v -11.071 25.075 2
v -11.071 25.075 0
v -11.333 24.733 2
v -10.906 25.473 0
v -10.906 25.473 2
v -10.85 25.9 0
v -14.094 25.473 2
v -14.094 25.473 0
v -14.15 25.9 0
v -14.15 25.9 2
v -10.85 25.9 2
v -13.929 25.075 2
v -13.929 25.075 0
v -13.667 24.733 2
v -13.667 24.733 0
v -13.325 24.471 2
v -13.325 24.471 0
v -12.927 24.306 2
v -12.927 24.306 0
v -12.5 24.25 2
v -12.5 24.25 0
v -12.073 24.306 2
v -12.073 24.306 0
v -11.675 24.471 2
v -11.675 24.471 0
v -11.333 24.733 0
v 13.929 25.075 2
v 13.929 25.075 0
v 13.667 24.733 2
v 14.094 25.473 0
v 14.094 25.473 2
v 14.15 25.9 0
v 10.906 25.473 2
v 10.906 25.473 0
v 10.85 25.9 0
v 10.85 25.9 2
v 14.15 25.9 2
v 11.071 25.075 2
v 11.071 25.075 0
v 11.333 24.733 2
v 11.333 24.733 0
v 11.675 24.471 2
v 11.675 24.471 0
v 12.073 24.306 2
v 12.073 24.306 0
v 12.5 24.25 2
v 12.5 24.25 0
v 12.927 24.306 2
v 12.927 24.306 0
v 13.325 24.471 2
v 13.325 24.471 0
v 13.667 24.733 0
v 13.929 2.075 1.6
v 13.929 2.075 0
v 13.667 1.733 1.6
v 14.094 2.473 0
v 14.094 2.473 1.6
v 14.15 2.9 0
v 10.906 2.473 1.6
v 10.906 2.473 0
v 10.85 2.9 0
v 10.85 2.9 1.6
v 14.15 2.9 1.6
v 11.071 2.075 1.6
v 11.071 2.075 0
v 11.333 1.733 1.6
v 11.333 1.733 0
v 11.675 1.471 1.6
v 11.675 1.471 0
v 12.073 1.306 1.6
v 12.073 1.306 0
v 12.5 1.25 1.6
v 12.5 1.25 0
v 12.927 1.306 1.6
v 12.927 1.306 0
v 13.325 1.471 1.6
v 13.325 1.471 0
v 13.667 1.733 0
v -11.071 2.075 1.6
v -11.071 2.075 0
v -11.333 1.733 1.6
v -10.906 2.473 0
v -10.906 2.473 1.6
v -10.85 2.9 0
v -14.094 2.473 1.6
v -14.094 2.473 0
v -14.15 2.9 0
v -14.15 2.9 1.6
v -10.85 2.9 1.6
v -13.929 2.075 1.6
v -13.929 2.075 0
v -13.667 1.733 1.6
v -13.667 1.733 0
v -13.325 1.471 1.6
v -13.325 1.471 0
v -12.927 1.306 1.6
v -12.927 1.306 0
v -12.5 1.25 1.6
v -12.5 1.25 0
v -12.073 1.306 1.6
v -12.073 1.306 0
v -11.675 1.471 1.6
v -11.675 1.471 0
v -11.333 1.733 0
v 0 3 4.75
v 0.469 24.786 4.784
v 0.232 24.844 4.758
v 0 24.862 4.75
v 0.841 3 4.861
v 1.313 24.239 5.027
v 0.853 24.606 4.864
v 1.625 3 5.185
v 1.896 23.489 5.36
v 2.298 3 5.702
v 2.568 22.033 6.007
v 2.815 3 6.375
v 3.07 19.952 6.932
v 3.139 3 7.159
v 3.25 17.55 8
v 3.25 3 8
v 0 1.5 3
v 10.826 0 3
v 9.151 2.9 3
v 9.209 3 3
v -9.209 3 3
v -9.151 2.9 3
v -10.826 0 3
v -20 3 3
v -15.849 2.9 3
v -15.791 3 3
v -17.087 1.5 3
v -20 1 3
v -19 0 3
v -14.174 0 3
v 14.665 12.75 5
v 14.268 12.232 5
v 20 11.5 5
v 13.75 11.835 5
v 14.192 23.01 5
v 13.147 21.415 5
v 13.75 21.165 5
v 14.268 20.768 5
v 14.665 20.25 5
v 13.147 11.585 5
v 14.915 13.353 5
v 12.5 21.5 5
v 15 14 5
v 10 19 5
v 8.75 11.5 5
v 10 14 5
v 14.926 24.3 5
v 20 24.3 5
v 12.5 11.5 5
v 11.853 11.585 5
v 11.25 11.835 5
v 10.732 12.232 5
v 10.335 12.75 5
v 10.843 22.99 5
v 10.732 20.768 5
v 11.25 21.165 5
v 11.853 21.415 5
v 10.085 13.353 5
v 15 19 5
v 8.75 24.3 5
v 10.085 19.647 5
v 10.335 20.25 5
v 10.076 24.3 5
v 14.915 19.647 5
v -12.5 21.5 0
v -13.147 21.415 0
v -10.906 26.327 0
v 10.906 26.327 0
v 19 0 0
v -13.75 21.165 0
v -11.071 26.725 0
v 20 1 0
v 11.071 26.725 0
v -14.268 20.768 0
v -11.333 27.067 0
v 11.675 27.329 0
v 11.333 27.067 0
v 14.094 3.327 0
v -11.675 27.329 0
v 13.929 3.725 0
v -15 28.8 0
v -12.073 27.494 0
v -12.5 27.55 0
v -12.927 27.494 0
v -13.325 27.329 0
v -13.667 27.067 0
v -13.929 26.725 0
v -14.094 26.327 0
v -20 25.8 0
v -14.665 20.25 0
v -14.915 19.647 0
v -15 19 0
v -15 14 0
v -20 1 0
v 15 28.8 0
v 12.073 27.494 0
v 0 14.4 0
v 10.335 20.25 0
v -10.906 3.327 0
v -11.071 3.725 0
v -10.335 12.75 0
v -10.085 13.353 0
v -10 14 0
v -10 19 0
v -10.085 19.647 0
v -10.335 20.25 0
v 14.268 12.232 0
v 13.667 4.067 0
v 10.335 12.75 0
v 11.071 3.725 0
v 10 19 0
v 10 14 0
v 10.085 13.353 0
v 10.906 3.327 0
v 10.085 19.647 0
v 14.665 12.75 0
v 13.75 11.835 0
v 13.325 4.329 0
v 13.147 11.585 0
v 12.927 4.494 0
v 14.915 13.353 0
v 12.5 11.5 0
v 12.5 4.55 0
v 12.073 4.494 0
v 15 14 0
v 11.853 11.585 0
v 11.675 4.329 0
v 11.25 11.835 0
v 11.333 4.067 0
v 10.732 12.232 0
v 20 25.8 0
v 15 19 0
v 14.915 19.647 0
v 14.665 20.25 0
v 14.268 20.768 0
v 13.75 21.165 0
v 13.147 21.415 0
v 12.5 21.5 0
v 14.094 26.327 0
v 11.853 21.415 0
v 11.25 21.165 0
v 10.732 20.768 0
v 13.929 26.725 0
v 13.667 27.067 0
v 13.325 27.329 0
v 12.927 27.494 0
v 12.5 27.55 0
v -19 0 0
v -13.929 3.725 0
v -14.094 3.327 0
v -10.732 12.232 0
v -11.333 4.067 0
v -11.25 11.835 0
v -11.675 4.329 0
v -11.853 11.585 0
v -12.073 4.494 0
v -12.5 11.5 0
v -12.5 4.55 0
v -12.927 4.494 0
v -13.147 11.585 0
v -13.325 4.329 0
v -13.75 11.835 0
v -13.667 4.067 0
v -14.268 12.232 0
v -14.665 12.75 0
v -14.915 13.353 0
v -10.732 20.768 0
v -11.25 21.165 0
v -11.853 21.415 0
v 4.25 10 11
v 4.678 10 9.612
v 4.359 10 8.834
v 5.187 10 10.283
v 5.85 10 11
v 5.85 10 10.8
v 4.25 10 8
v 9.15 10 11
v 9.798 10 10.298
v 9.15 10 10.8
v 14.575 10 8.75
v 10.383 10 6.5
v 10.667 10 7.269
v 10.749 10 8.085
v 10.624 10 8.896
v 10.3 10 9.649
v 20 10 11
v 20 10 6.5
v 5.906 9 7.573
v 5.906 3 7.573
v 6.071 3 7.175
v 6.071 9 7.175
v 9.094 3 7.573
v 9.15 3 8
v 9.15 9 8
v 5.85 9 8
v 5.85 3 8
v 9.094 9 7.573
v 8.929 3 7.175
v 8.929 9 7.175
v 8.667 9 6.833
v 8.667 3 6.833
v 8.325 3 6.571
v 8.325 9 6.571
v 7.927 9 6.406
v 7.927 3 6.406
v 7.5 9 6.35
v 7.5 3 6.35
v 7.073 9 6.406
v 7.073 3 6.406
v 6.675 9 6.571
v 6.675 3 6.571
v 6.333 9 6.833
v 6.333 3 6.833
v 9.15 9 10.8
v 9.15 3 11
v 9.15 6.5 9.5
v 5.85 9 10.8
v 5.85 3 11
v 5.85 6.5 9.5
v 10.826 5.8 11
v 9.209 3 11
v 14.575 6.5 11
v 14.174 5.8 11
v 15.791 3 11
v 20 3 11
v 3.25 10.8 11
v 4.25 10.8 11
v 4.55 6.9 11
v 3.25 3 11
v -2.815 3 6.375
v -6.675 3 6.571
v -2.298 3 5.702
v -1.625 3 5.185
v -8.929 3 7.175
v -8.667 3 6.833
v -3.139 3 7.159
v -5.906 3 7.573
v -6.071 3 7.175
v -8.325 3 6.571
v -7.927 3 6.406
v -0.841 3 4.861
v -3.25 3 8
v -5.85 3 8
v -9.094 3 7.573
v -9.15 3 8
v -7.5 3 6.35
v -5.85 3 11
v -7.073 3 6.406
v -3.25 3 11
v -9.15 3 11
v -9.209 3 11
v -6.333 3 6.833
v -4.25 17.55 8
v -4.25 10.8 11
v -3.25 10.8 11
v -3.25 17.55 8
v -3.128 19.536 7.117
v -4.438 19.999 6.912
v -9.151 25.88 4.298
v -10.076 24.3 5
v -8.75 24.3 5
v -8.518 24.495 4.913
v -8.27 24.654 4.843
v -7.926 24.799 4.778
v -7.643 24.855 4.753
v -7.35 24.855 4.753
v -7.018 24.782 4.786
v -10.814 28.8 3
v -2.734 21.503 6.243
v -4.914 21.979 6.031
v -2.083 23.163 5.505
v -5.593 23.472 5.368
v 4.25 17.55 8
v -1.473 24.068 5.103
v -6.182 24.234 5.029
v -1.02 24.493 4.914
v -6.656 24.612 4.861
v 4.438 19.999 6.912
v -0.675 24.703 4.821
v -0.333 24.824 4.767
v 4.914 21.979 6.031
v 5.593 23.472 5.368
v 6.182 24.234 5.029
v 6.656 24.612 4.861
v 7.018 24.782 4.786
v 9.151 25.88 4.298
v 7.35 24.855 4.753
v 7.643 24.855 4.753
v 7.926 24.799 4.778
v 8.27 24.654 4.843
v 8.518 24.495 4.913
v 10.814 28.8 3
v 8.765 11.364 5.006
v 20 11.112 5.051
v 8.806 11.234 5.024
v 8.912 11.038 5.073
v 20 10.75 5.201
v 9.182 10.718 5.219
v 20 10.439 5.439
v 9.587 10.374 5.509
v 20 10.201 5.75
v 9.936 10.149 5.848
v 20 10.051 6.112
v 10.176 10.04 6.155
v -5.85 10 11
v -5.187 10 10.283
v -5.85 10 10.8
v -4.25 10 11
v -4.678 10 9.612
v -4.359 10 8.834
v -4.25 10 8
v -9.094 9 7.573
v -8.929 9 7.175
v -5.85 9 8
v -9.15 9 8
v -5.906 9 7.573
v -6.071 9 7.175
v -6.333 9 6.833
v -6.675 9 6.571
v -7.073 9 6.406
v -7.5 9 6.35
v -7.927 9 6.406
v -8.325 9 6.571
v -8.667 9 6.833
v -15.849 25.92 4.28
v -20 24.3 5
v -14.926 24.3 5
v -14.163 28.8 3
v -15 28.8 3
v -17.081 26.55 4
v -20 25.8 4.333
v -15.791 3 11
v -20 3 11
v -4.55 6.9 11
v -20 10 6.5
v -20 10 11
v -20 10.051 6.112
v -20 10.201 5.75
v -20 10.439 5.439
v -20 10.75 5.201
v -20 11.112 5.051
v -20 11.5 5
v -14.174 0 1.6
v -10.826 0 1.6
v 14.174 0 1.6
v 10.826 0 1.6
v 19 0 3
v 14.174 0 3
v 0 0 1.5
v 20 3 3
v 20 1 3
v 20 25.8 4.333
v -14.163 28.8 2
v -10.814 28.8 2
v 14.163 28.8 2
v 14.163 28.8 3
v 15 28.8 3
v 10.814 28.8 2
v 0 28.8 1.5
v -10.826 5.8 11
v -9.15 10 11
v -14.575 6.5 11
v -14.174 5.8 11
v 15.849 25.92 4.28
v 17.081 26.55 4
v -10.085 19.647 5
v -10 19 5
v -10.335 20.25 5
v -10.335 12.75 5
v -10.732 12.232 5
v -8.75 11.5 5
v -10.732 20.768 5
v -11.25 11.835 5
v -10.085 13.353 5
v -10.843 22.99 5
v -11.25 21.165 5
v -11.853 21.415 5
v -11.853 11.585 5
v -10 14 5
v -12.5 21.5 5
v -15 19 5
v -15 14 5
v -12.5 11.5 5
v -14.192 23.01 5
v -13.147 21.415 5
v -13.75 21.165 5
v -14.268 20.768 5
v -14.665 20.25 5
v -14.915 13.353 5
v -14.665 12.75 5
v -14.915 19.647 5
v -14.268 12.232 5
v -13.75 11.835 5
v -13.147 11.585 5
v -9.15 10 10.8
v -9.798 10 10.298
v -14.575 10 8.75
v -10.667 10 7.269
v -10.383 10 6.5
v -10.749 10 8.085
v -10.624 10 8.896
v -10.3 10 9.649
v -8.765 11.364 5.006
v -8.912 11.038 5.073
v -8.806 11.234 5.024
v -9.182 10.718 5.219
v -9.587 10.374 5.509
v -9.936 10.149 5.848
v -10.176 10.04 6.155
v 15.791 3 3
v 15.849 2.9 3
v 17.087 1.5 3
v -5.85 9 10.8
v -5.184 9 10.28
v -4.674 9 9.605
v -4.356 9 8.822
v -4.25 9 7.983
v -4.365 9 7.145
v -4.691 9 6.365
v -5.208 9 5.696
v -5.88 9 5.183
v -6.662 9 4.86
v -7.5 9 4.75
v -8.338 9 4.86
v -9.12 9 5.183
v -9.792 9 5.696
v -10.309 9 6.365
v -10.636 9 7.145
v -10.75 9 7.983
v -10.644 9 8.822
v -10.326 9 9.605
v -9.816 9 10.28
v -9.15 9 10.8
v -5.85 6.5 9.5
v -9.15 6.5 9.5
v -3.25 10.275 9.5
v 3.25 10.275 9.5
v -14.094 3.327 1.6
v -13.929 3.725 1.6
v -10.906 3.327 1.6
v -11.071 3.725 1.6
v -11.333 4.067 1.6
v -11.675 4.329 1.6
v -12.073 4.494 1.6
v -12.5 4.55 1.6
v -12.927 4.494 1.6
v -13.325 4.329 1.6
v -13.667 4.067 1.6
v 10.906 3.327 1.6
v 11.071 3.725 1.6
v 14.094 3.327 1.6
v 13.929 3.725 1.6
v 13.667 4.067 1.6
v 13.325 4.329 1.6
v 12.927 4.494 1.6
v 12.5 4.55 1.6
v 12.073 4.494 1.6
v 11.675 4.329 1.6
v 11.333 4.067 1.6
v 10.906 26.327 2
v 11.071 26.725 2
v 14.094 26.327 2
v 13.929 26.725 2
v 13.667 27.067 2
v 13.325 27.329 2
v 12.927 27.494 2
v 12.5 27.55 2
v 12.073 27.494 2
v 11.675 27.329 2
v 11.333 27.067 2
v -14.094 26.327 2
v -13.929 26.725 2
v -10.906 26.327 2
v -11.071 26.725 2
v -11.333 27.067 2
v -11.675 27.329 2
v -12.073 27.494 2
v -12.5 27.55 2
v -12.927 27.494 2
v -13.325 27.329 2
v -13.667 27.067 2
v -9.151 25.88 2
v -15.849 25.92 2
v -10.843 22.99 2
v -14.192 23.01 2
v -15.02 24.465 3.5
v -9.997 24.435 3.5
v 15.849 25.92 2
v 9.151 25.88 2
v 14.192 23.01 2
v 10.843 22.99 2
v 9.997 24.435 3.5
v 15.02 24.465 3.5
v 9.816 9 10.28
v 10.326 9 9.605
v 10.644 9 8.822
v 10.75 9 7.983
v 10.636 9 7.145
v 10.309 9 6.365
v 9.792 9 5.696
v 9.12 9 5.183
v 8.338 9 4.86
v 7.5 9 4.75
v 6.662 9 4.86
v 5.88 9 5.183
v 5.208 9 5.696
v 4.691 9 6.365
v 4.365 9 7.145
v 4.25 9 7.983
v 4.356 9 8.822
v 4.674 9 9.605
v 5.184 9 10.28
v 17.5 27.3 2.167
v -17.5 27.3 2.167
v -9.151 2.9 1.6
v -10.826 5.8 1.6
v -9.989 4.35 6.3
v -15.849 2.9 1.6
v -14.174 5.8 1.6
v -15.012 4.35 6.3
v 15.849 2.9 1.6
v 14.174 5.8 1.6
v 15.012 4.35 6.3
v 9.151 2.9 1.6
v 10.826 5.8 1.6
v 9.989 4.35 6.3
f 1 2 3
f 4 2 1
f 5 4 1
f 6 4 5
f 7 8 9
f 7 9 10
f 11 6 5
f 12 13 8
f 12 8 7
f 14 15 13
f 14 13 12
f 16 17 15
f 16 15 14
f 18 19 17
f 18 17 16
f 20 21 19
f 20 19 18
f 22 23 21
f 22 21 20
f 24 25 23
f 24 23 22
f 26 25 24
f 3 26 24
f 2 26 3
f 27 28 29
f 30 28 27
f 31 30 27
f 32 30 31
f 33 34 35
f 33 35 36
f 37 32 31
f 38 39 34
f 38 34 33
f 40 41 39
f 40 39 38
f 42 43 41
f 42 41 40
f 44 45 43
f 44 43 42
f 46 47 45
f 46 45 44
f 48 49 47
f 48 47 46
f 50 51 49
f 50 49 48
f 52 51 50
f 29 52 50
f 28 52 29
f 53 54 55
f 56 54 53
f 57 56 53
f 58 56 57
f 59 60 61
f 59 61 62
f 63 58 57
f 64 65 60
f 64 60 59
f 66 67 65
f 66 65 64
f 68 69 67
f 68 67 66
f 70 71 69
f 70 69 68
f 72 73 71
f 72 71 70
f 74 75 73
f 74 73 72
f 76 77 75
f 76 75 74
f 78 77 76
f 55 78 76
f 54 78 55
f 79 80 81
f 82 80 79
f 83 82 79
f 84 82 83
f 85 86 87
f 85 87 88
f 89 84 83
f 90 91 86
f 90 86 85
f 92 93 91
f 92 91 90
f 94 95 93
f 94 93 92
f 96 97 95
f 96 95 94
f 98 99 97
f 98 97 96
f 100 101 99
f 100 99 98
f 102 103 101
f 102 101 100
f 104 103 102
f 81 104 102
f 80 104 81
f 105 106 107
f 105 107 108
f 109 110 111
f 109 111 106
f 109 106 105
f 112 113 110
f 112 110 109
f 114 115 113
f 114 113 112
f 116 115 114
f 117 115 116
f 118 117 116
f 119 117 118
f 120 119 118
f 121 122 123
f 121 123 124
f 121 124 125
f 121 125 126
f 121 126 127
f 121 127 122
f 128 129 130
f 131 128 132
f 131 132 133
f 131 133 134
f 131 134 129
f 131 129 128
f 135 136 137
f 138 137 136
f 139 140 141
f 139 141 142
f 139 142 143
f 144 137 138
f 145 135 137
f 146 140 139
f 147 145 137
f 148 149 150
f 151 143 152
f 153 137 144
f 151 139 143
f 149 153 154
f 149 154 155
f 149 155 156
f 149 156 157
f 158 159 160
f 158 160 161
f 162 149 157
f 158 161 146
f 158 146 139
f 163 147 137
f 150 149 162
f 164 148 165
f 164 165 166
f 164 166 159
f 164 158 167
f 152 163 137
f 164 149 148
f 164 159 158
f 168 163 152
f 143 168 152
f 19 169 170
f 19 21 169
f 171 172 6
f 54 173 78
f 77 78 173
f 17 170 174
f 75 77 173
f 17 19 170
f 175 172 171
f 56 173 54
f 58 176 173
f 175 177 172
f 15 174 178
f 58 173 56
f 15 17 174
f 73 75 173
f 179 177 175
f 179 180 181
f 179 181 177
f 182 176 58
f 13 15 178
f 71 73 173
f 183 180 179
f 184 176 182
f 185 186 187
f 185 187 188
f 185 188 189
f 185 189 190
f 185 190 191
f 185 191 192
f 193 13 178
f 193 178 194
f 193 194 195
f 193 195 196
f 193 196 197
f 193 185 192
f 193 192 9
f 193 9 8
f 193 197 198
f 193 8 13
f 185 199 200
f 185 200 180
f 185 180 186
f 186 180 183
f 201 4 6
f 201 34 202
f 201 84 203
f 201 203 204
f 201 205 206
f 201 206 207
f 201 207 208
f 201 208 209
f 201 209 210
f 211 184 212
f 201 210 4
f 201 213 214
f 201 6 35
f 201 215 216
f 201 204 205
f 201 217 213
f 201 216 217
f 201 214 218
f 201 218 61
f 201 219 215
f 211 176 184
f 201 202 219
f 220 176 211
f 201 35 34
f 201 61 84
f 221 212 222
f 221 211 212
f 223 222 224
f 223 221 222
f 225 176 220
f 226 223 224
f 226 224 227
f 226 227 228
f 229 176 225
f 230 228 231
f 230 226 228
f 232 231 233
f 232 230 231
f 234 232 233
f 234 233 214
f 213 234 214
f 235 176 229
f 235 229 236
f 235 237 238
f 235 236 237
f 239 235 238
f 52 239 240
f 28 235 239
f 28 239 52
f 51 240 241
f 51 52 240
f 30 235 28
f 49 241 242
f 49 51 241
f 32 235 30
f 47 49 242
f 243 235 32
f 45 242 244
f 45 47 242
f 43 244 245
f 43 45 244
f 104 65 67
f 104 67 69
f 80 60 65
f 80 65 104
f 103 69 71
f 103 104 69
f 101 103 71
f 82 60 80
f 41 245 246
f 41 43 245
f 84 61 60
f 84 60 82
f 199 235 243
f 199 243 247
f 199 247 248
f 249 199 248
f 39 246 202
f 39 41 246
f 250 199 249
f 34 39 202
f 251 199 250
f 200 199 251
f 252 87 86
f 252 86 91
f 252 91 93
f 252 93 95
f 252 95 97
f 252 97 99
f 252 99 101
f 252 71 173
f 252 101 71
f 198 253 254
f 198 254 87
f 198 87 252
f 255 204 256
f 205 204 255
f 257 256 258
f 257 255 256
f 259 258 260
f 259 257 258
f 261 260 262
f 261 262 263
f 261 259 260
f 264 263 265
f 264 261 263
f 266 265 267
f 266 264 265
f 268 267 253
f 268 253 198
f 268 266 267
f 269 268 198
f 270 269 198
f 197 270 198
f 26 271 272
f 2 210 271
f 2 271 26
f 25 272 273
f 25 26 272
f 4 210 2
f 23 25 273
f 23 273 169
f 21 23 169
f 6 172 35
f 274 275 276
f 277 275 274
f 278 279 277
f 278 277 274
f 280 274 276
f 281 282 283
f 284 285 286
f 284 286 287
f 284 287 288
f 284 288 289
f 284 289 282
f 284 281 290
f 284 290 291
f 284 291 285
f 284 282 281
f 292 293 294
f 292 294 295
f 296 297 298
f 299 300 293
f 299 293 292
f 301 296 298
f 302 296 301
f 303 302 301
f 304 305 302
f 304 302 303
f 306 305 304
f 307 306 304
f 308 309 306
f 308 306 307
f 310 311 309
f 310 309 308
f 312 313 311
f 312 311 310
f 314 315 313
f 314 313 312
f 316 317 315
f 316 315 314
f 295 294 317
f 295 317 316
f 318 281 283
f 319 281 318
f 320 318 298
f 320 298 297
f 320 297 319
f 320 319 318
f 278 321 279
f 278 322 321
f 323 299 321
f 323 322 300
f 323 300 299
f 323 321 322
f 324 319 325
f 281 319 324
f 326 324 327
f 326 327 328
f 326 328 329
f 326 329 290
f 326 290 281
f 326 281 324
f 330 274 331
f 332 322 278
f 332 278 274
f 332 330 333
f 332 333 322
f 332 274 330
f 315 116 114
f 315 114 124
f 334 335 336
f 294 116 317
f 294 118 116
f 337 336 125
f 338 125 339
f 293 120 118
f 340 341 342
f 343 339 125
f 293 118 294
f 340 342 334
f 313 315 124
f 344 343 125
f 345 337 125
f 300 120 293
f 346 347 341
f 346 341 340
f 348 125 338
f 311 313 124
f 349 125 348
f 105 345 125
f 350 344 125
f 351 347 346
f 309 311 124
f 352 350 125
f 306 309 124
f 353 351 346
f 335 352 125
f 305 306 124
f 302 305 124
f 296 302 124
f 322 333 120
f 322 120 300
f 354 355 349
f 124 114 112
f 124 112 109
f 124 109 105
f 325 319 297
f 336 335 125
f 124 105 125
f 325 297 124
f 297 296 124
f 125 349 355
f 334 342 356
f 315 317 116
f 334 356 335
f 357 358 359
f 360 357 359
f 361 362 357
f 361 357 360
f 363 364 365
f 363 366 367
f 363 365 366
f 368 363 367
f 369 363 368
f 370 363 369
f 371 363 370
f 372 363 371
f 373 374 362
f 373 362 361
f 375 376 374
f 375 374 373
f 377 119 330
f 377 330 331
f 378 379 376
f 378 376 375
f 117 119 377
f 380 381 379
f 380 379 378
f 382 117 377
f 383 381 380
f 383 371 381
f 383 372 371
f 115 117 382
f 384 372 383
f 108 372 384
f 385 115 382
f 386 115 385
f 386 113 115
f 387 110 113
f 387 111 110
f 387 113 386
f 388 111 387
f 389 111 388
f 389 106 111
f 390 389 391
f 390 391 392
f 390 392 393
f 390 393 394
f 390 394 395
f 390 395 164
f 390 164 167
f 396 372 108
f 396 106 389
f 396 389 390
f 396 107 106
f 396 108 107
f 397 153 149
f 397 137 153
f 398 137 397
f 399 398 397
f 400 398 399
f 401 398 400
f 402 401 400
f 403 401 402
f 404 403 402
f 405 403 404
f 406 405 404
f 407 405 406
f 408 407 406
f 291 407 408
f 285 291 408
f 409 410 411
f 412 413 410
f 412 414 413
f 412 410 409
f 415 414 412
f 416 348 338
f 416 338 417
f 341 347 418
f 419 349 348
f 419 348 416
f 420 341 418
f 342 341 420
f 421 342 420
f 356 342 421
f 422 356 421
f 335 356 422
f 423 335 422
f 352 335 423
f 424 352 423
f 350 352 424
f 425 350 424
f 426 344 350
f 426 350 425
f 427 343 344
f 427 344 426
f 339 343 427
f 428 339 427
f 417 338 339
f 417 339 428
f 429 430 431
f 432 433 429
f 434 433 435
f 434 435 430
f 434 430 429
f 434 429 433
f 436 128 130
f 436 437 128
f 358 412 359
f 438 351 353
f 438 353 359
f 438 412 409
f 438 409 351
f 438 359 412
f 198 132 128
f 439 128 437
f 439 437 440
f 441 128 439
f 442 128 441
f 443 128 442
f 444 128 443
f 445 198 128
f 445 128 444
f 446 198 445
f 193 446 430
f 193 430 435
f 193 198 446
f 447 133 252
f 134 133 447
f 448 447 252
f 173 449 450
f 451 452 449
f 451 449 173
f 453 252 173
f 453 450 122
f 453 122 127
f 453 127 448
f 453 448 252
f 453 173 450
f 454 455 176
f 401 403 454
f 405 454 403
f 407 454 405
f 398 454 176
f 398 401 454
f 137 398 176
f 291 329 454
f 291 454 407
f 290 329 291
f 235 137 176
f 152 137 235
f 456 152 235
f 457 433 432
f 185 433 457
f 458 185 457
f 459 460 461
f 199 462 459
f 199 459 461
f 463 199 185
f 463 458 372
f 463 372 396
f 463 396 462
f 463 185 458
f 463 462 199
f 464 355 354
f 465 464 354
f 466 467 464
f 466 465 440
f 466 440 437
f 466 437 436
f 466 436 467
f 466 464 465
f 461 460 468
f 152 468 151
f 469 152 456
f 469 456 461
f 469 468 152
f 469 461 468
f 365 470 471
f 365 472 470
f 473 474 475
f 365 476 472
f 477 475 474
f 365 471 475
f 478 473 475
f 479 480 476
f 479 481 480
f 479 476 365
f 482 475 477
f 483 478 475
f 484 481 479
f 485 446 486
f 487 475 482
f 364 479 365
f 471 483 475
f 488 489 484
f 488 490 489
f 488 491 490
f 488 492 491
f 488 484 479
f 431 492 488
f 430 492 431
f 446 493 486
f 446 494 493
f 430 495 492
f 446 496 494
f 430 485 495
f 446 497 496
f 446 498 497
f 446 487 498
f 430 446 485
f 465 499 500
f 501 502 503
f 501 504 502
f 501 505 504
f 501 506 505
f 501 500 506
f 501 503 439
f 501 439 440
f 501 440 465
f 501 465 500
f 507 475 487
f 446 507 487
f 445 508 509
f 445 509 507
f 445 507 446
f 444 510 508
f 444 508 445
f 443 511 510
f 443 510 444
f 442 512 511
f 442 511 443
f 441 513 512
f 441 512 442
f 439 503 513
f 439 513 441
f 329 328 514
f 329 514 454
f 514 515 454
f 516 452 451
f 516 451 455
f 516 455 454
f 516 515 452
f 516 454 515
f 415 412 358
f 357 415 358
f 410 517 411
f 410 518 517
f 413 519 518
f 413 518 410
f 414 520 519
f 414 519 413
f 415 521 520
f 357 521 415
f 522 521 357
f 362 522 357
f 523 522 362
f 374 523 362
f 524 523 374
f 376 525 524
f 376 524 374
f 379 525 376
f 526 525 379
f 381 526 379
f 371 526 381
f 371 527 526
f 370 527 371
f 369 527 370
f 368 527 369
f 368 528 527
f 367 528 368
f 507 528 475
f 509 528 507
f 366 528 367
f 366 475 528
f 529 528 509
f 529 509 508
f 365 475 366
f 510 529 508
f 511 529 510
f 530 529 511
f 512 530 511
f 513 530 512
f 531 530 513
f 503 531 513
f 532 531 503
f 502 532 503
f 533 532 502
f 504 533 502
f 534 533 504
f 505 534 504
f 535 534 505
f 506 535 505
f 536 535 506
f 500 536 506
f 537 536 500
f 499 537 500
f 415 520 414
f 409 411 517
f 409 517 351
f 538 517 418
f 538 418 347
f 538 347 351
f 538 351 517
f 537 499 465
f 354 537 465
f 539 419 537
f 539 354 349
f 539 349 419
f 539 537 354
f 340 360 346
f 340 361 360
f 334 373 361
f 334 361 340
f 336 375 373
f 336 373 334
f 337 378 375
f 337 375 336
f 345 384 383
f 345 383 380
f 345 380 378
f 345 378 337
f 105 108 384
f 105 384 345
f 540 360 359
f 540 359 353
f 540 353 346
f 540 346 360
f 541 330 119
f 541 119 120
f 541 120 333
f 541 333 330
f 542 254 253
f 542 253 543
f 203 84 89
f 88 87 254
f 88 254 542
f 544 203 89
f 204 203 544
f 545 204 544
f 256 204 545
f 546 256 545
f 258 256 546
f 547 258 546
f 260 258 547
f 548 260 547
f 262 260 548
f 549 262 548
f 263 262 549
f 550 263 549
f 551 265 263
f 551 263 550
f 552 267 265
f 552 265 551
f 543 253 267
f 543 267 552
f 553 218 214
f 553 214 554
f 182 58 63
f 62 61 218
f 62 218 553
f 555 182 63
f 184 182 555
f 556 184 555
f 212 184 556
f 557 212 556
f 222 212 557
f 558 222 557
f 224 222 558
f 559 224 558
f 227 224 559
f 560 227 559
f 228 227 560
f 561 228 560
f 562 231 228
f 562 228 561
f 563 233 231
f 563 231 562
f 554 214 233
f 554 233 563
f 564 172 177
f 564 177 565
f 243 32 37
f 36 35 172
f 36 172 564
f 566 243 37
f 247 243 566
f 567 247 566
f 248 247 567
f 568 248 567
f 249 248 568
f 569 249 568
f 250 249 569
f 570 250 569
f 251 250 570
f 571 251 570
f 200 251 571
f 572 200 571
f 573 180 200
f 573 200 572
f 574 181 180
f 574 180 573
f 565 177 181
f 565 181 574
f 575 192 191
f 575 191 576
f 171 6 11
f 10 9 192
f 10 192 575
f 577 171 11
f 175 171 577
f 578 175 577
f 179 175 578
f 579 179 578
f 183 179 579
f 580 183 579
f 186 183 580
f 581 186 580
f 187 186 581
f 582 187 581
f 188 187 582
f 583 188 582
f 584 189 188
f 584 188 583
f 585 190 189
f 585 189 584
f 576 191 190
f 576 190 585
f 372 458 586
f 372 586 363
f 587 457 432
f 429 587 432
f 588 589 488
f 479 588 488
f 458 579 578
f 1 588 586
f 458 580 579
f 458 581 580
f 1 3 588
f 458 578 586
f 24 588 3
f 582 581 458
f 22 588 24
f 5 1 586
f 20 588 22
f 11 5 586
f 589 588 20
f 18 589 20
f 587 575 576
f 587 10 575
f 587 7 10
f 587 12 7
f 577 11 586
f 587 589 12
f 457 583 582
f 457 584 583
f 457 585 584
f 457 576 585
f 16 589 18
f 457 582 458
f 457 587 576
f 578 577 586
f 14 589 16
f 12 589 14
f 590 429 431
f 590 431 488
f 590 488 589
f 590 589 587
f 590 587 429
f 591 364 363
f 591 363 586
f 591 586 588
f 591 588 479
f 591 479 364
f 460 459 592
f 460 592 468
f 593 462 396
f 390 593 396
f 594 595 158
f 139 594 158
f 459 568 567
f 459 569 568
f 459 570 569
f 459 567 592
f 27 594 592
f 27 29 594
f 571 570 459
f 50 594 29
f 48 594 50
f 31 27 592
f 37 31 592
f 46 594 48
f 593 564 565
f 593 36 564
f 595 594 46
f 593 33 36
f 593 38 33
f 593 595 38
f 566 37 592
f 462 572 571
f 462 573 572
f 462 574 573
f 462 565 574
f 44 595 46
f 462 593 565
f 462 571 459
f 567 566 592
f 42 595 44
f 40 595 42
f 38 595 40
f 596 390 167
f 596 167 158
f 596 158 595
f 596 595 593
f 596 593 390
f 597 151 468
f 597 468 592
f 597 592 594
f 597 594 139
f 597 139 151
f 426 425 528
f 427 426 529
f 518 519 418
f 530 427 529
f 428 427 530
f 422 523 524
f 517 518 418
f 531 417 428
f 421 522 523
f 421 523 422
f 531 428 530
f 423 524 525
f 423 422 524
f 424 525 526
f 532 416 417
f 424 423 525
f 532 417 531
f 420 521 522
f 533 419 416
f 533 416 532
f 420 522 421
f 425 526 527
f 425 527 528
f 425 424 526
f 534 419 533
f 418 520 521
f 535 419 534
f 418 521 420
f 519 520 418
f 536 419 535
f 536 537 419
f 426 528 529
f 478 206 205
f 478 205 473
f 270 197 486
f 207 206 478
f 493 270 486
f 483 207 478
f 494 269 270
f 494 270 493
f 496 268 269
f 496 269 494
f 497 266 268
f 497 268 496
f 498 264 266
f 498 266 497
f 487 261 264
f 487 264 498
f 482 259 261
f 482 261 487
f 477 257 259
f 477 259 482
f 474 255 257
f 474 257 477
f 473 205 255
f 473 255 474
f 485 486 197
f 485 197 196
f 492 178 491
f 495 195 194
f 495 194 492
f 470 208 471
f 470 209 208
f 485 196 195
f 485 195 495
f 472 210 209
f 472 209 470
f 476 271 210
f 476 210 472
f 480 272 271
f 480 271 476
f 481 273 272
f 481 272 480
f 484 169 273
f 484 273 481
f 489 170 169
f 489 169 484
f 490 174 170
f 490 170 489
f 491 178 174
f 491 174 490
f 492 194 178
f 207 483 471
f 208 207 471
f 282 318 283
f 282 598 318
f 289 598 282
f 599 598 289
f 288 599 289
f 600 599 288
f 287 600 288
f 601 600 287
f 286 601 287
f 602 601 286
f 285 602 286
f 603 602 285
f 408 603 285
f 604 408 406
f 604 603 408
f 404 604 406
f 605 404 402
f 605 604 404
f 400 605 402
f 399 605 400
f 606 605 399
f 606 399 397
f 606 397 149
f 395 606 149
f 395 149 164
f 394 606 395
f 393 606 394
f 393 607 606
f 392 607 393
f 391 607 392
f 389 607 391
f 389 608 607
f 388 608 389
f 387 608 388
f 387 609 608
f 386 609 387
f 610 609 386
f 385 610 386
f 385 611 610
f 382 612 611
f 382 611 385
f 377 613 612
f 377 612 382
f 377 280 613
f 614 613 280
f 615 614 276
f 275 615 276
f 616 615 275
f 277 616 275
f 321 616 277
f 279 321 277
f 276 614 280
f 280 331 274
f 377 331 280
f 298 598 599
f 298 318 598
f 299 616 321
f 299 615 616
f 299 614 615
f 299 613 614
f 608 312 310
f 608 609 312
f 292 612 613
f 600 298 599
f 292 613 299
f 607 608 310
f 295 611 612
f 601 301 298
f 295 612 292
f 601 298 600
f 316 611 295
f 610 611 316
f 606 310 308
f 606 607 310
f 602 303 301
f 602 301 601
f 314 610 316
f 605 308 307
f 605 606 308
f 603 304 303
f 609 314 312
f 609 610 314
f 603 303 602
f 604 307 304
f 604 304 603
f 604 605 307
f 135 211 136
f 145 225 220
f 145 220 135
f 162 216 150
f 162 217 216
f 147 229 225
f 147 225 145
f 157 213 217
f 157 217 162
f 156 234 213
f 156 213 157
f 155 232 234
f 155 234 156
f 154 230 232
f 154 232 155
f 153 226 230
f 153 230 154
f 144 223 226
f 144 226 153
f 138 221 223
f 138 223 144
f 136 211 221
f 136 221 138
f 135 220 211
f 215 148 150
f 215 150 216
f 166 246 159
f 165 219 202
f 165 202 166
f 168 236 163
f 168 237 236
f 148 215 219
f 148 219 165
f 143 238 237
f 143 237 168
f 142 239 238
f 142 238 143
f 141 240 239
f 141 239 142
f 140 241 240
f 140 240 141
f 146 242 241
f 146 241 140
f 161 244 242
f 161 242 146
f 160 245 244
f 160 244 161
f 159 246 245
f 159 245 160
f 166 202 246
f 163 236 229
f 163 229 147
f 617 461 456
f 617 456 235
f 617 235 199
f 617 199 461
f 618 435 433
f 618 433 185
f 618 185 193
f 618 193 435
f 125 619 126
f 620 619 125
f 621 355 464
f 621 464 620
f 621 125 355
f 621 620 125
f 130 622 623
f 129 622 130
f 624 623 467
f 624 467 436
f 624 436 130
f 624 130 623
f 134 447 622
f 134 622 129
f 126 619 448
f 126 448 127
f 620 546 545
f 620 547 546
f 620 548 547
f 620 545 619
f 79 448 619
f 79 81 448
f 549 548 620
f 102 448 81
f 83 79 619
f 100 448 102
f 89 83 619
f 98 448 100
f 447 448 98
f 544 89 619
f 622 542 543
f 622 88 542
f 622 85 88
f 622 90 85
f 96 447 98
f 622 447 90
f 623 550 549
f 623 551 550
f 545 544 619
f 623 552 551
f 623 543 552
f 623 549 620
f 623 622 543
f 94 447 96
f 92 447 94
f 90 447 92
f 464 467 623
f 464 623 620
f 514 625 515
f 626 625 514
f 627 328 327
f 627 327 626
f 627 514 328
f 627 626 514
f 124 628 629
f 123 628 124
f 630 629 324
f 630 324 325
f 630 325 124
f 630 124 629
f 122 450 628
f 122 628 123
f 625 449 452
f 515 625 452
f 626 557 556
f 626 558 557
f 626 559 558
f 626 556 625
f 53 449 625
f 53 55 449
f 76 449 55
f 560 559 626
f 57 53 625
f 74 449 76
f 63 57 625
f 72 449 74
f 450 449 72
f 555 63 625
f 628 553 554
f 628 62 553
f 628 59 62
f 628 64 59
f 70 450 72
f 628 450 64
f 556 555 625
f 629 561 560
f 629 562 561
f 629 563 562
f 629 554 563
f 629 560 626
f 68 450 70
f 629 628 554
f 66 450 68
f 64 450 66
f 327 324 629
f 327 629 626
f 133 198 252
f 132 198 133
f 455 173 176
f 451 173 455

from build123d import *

# Parameters (mm, degrees)
SKETCH1_W           = 40
SKETCH1_H           = 28.8
BOSS_EXTRUDE1_DEPTH = 11
CHAMFER2_SIZE       = 8
CHAMFER2_SIZE2      = 18
SKETCH10_W          = 13.5
SKETCH10_H          = 18.8
CUT_EXTRUDE7_DEPTH  = 6
FILLET1_R           = 1.5
SKETCH11_W          = 40
SKETCH11_H          = 3
CUT_EXTRUDE8_DEPTH  = 8
CUT_EXTRUDE9_DEPTH  = 18.8
CUT_EXTRUDE10_DEPTH = 11
CUT_EXTRUDE2_DEPTH  = 30
SKETCH2_R           = 1.65
CUT_EXTRUDE1_DEPTH  = 12
CUT_EXTRUDE4_DEPTH  = 9
SKETCH15_R          = 3.25
CUT_EXTRUDE12_DEPTH = 1
CUT_EXTRUDE13_DEPTH = 6
CHAMFER4_SIZE       = 3
CHAMFER4_SIZE2      = 5
CHAMFER5_SIZE       = 5
CHAMFER5_SIZE2      = 3
CUT_EXTRUDE11_DEPTH = 9.4
CHAMFER8_SIZE       = 1


with BuildPart() as part:
    # Sketch1 → Boss-Extrude1 (new body)
    with BuildSketch(Plane.XY):
        with Locations((0, 14.4)):
            Rectangle(SKETCH1_W, SKETCH1_H)
    extrude(amount=BOSS_EXTRUDE1_DEPTH)

    # Chamfer2
    chamfer2_edges = [part.edges().sort_by_distance(p)[0] for p in [
        (0, 28.8, 11),
    ]]
    chamfer2_side = [part.faces().sort_by_distance(p)[0] for p in [
        (0, 28.8, 5.5),
    ]]
    chamfer(chamfer2_edges, length=CHAMFER2_SIZE, length2=CHAMFER2_SIZE2, reference=chamfer2_side[0])

    # Sketch10 → Cut-Extrude7 (cut)
    with BuildSketch(Plane.XY.offset(11)):
        with Locations((-13.25, 19.4)):
            Rectangle(SKETCH10_W, SKETCH10_H)
        with Locations((13.25, 19.4)):
            Rectangle(SKETCH10_W, SKETCH10_H)
    extrude(amount=-CUT_EXTRUDE7_DEPTH, mode=Mode.SUBTRACT)

    # Fillet1
    fillet1_edges = [part.edges().sort_by_distance(p)[0] for p in [
        (-13.25, 10, 5),
        (13.25, 10, 5),
    ]]
    fillet(fillet1_edges, radius=FILLET1_R)

    # Sketch11 → Cut-Extrude8 (cut)
    with BuildSketch(Plane.XY.offset(11)):
        with Locations((0, 1.5)):
            Rectangle(SKETCH11_W, SKETCH11_H)
    extrude(amount=-CUT_EXTRUDE8_DEPTH, mode=Mode.SUBTRACT)

    # Sketch12 → Cut-Extrude9 (cut)
    with BuildSketch(Plane(origin=(0, 28.8, 0), x_dir=(1, 0, 0), z_dir=(0, 1, 0))):
        with BuildLine():
            Line((-4.25, -8), (-4.25, -11))
            Line((-4.25, -11), (-10.75, -11))
            Line((-10.75, -11), (-10.75, -8))
            ThreePointArc((-10.75, -8), (-7.5, -4.75), (-4.25, -8))
        make_face()
    cut_extrude9 = extrude(amount=-CUT_EXTRUDE9_DEPTH, mode=Mode.SUBTRACT)

    # Sketch13 → Cut-Extrude10 (cut, through all)
    with BuildSketch(Plane(origin=(0, 10, 0), x_dir=(1, 0, 0), z_dir=(0, 1, 0))):
        with BuildLine():
            Line((-9.15, -8), (-9.15, -11))
            Line((-9.15, -11), (-5.85, -11))
            Line((-5.85, -11), (-5.85, -8))
            ThreePointArc((-5.85, -8), (-7.5, -6.35), (-9.15, -8))
        make_face()
    cut_extrude10 = extrude(amount=-CUT_EXTRUDE10_DEPTH, mode=Mode.SUBTRACT)

    # Sketch3 → Cut-Extrude2 (cut)
    with BuildSketch(Plane.XZ):
        with BuildLine():
            Line((-3.25, 8), (-3.25, 11))
            Line((-3.25, 11), (3.25, 11))
            Line((3.25, 11), (3.25, 8))
            ThreePointArc((3.25, 8), (0, 4.75), (-3.25, 8))
        make_face()
    extrude(amount=-CUT_EXTRUDE2_DEPTH, mode=Mode.SUBTRACT)

    # Sketch2 → Cut-Extrude1 (cut, through all)
    with BuildSketch(Plane.XY.offset(11)):
        with Locations((-12.5, 2.9)):
            Circle(SKETCH2_R)
        with Locations((12.5, 2.9)):
            Circle(SKETCH2_R)
        with Locations((12.5, 25.9)):
            Circle(SKETCH2_R)
        with Locations((-12.5, 25.9)):
            Circle(SKETCH2_R)
    extrude(amount=-CUT_EXTRUDE1_DEPTH, mode=Mode.SUBTRACT)

    # Sketch5 → Cut-Extrude4 (cut)
    with BuildSketch(Plane.XY.offset(11)):
        Polygon((-13.825512835, 29.376278709), (-11.142302486, 29.376278709), (-9.151427839, 25.880054666), (-10.842987085, 22.990078775), (-14.191559246, 23.010024109), (-15.848572161, 25.919945334), align=None)
        Polygon((11.142302486, 29.376278709), (13.825512835, 29.376278709), (15.848572161, 25.919945334), (14.191559246, 23.010024109), (10.842987085, 22.990078775), (9.151427839, 25.880054666), align=None)
    extrude(amount=-CUT_EXTRUDE4_DEPTH, mode=Mode.SUBTRACT)

    # Sketch15 → Cut-Extrude12 (cut)
    with BuildSketch(Plane(origin=(0, 10, 0), x_dir=(1, 0, 0), z_dir=(0, 1, 0))):
        with Locations((-7.5, -8)):
            Circle(SKETCH15_R)
    cut_extrude12 = extrude(amount=-CUT_EXTRUDE12_DEPTH, mode=Mode.SUBTRACT)

    # Sketch16 → Cut-Extrude13 (cut, through all)
    with BuildSketch(Plane.XY.offset(5)):
        with BuildLine():
            Line((-15, 14), (-15, 19))
            ThreePointArc((-15, 19), (-12.5, 21.5), (-10, 19))
            Line((-10, 19), (-10, 14))
            ThreePointArc((-10, 14), (-12.5, 11.5), (-15, 14))
        make_face()
    cut_extrude13 = extrude(amount=-CUT_EXTRUDE13_DEPTH, mode=Mode.SUBTRACT)

    # Mirror1: Cut-Extrude9, Cut-Extrude10, Cut-Extrude12, Cut-Extrude13 across plane
    add(cut_extrude9.mirror(Plane(origin=(0, 0, 0), x_dir=(0, 0, 1), z_dir=(1, 0, 0))), mode=Mode.SUBTRACT)
    add(cut_extrude10.mirror(Plane(origin=(0, 0, 0), x_dir=(0, 0, 1), z_dir=(1, 0, 0))), mode=Mode.SUBTRACT)
    add(cut_extrude12.mirror(Plane(origin=(0, 0, 0), x_dir=(0, 0, 1), z_dir=(1, 0, 0))), mode=Mode.SUBTRACT)
    add(cut_extrude13.mirror(Plane(origin=(0, 0, 0), x_dir=(0, 0, 1), z_dir=(1, 0, 0))), mode=Mode.SUBTRACT)

    # Chamfer4
    chamfer4_edges = [part.edges().sort_by_distance(p)[0] for p in [
        (20, 28.8, 1.5),
    ]]
    chamfer4_side = [part.faces().sort_by_distance(p)[0] for p in [
        (20, 12.613389716, 3.722385656),
    ]]
    chamfer(chamfer4_edges, length=CHAMFER4_SIZE, length2=CHAMFER4_SIZE2, reference=chamfer4_side[0])

    # Chamfer5
    chamfer5_edges = [part.edges().sort_by_distance(p)[0] for p in [
        (-20, 28.8, 1.5),
    ]]
    chamfer5_side = [part.faces().sort_by_distance(p)[0] for p in [
        (-2.670324549, 28.8, 1.43187018),
    ]]
    chamfer(chamfer5_edges, length=CHAMFER5_SIZE, length2=CHAMFER5_SIZE2, reference=chamfer5_side[0])

    # Sketch14 → Cut-Extrude11 (cut)
    with BuildSketch(Plane.XY.offset(11)):
        Polygon((-9.151368439, 2.9), (-10.825684219, 5.8), (-14.174315781, 5.8), (-15.848631561, 2.9), (-14.174315781, 0), (-10.825684219, 0), align=None)
        Polygon((15.848631561, 2.9), (14.174315781, 5.8), (10.825684219, 5.8), (9.151368439, 2.9), (10.825684219, 0), (14.174315781, 0), align=None)
    extrude(amount=-CUT_EXTRUDE11_DEPTH, mode=Mode.SUBTRACT)

    # Chamfer8
    chamfer8_edges = [part.edges().sort_by_distance(p)[0] for p in [
        (20, 0, 1.5),
        (-20, 0, 1.5),
    ]]
    chamfer(chamfer8_edges, length=CHAMFER8_SIZE)


solid = part.part
